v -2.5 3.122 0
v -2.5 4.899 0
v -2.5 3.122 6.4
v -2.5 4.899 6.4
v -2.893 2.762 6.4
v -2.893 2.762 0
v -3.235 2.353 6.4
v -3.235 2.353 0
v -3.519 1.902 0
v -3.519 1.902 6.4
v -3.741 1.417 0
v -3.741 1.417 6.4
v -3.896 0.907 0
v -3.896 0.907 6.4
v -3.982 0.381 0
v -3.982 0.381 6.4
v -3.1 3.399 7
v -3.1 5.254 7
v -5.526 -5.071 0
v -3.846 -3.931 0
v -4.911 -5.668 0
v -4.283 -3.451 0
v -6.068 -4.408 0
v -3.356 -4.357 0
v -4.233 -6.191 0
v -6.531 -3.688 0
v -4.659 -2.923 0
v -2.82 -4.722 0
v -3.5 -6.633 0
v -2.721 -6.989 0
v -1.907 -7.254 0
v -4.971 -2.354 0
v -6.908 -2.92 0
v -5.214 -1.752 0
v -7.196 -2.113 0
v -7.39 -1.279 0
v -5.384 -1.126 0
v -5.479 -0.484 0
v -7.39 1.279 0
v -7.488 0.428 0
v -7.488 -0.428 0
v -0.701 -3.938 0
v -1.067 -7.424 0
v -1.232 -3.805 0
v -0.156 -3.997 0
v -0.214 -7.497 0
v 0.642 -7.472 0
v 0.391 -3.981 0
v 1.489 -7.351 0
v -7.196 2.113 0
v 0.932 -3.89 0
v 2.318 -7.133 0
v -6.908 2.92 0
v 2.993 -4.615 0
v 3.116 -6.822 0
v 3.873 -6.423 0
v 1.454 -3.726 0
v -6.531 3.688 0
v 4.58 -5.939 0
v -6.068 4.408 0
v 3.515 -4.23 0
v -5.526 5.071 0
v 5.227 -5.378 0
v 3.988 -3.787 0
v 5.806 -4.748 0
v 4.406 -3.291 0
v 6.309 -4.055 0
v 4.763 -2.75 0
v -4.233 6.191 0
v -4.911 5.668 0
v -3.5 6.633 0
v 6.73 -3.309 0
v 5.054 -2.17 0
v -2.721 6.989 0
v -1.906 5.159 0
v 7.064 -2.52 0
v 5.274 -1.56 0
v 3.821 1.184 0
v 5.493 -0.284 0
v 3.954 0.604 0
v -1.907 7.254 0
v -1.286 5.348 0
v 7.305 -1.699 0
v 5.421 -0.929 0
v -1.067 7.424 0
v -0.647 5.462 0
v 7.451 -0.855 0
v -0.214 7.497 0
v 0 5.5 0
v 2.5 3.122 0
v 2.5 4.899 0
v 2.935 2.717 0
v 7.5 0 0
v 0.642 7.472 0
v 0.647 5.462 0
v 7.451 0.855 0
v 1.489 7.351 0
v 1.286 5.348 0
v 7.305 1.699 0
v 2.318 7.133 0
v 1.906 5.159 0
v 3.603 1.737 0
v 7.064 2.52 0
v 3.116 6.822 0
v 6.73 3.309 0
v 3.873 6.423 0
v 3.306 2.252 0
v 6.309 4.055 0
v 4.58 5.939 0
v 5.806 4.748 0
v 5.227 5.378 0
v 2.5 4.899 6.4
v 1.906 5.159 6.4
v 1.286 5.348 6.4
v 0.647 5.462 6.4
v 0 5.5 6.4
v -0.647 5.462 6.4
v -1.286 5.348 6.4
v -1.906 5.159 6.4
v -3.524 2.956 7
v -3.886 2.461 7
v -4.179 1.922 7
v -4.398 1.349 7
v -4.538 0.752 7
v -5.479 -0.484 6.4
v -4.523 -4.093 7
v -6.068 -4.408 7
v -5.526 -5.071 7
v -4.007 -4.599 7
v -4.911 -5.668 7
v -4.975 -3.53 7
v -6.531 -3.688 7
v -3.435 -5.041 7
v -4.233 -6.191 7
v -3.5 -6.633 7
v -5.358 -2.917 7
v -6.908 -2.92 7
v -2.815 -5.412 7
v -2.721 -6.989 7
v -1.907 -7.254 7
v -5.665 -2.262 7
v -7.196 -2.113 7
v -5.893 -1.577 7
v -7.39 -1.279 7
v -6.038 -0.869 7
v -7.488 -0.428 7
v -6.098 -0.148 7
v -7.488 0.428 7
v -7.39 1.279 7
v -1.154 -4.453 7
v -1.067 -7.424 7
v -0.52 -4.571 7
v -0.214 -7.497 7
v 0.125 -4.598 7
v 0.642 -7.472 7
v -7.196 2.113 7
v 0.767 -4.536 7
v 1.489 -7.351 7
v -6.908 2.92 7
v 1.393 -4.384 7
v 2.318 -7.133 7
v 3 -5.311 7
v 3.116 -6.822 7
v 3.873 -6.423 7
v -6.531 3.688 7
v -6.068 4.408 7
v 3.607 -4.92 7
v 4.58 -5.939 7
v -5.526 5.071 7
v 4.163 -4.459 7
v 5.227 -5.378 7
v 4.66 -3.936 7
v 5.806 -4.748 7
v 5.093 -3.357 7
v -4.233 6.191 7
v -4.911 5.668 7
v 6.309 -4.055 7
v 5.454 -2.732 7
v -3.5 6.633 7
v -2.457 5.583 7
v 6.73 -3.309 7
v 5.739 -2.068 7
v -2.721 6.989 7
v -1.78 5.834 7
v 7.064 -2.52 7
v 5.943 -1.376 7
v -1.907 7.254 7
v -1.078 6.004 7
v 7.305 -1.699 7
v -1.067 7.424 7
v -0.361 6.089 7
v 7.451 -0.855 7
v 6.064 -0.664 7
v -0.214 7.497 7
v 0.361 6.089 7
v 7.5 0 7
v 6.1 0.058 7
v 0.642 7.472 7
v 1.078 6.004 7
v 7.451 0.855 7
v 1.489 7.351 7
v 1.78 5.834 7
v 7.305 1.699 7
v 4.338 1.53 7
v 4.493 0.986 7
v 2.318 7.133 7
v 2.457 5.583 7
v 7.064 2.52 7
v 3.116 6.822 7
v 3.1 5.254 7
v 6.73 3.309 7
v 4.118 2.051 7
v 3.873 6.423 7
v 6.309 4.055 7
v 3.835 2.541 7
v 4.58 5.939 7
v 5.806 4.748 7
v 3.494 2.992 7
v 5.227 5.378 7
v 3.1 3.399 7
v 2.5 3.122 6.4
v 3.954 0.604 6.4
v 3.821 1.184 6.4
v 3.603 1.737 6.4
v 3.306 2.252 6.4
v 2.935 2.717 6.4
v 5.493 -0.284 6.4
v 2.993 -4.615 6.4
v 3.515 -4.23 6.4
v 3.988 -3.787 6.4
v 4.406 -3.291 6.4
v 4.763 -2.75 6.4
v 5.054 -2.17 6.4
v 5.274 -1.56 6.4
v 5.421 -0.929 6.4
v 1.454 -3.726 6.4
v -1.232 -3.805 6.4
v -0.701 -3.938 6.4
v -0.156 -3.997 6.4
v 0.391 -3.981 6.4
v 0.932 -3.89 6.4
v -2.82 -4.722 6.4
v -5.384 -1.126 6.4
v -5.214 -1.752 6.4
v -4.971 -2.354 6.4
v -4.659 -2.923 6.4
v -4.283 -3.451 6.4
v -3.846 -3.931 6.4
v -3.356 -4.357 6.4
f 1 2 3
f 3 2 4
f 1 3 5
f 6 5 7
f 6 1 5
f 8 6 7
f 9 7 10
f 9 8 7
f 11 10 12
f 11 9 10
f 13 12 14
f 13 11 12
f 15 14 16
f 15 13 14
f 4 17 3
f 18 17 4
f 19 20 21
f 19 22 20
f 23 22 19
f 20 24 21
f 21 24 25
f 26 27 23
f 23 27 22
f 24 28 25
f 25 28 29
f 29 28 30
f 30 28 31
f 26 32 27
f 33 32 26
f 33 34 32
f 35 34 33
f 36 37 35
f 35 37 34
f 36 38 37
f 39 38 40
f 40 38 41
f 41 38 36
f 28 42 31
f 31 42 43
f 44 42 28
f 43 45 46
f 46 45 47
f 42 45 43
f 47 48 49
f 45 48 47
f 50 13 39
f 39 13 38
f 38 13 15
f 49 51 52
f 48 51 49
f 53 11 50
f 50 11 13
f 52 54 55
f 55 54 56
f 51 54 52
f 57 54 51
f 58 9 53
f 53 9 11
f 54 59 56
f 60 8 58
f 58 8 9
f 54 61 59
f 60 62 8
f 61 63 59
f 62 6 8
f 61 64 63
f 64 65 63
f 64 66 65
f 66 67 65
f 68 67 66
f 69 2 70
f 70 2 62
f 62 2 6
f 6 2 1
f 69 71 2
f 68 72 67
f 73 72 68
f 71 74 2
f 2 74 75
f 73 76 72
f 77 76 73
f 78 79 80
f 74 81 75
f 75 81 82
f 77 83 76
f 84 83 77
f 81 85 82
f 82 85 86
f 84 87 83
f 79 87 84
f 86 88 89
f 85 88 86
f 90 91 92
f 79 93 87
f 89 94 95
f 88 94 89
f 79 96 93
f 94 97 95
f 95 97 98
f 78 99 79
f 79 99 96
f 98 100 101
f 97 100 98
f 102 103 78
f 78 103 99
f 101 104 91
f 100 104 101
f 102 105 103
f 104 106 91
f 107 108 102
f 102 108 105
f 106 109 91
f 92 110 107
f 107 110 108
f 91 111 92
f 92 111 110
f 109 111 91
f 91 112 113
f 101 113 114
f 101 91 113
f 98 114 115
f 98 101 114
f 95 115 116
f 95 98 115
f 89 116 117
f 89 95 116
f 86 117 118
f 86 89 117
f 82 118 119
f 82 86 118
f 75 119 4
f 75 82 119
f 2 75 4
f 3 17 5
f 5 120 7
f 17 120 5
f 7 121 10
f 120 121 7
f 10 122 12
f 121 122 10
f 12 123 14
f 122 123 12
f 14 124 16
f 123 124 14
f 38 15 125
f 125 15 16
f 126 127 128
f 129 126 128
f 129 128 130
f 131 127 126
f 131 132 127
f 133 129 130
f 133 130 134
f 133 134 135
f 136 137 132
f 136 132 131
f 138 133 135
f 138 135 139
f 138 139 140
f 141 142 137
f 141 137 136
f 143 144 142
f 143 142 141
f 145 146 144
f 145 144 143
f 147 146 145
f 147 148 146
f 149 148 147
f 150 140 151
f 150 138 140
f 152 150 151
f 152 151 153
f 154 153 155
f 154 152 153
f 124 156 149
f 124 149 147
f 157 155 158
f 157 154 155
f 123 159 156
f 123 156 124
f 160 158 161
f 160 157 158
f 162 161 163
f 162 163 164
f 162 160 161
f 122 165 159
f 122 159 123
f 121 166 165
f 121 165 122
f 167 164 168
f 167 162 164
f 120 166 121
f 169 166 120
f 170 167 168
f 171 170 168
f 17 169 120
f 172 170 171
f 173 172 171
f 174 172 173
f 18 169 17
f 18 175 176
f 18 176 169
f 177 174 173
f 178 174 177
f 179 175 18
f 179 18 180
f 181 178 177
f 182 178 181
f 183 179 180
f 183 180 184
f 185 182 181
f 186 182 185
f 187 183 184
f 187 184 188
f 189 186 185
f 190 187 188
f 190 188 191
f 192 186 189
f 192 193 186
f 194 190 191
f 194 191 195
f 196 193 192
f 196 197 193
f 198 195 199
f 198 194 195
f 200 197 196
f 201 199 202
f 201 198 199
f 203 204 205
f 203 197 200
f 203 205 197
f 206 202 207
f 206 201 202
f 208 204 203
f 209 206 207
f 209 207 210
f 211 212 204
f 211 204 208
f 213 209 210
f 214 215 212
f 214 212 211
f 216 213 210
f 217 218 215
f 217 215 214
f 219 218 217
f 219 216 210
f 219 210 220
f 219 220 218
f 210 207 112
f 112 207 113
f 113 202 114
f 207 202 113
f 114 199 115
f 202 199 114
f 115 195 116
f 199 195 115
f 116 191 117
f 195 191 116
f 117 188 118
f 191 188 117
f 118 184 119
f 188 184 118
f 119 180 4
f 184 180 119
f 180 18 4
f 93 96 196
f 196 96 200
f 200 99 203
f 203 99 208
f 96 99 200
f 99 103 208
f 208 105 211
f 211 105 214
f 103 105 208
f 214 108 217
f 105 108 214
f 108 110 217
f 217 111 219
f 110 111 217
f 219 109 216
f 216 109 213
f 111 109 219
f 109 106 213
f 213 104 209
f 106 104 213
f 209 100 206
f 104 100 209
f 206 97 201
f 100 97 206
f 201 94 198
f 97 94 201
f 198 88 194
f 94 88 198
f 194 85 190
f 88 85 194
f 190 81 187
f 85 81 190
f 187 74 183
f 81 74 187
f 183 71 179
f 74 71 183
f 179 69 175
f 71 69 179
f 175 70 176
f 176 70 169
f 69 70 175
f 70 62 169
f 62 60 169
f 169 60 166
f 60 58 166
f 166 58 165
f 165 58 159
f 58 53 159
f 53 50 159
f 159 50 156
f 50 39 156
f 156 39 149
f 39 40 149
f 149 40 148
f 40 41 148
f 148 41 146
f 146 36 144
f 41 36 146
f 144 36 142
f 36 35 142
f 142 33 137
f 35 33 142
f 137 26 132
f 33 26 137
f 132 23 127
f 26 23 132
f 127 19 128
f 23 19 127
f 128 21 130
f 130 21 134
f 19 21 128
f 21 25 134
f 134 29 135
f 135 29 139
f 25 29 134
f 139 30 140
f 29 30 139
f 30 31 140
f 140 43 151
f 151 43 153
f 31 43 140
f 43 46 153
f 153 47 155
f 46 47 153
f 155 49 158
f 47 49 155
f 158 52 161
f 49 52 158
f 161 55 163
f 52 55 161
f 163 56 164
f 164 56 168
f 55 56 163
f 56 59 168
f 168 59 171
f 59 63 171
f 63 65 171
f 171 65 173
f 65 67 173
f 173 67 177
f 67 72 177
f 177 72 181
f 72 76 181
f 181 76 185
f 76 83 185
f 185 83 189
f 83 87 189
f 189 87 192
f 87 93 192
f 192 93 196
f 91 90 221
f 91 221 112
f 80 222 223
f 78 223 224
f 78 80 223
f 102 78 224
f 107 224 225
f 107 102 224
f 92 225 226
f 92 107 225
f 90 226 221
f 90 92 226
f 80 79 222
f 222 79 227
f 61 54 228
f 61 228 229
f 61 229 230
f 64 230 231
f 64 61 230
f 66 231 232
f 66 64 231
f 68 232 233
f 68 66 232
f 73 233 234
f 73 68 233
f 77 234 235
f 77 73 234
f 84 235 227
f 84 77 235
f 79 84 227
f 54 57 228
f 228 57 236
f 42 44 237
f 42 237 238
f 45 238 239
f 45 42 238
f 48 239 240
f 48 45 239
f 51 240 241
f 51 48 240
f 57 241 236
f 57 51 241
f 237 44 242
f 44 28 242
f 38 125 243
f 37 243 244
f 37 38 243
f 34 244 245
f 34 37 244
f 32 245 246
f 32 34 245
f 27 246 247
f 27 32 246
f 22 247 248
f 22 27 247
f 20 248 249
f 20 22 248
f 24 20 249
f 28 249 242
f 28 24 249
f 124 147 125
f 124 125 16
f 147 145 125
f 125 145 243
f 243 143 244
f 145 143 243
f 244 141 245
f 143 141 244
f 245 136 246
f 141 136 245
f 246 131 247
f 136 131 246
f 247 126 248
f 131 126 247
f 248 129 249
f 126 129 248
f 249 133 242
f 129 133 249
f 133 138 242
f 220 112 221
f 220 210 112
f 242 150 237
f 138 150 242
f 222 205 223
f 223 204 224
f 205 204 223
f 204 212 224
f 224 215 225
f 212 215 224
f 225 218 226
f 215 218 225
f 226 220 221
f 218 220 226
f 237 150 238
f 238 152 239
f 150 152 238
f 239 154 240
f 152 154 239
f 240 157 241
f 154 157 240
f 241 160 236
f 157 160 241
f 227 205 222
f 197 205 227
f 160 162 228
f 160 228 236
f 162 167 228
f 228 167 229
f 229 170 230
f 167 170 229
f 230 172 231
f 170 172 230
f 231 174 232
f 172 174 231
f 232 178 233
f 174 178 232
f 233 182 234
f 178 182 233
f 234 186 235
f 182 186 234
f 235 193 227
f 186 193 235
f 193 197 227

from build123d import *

# Parameters (mm, degrees)
SKETCH_R     = 7.5
PAD_DEPTH    = 7
CHAMFER_SIZE = 0.6


with BuildPart() as part:
    # Sketch → Pad (new body)
    with BuildSketch(Plane.XY):
        Circle(SKETCH_R)
        with BuildLine():
            ThreePointArc((-2.5, 3.122499), (-3.518971, 1.901799), (-3.981855, 0.380567))
            Line((-5.478695, -0.483634), (-3.981855, 0.380567))
            ThreePointArc((-5.478695, -0.483634), (-4.659167, -2.922699), (-2.81991, -4.722087))
            Line((-1.232265, -3.80546), (-2.81991, -4.722087))
            ThreePointArc((-1.232265, -3.80546), (0.117848, -3.998264), (1.454262, -3.726275))
            Line((2.992718, -4.614503), (1.454262, -3.726275))
            ThreePointArc((2.992718, -4.614503), (4.763149, -2.749985), (5.492638, -0.284484))
            Line((3.954108, 0.604177), (5.492638, -0.284484))
            ThreePointArc((3.954108, 0.604177), (3.46401, 2.000159), (2.5, 3.122499))
            Line((2.5, 3.122499), (2.5, 4.898979))
            ThreePointArc((2.5, 4.898979), (0, 5.5), (-2.5, 4.898979))
            Line((-2.5, 3.122499), (-2.5, 4.898979))
        make_face(mode=Mode.SUBTRACT)
    extrude(amount=PAD_DEPTH)

    # Chamfer
    chamfer_edges = [part.edges().sort_by_distance(p)[0] for p in [
        (-3.518971, 1.901799, 7),
        (-4.730275, -0.051534, 7),
        (-4.659167, -2.922699, 7),
        (-2.026088, -4.263773, 7),
        (0.117848, -3.998264, 7),
        (2.22349, -4.170389, 7),
        (4.763149, -2.749985, 7),
        (4.723373, 0.159847, 7),
        (3.46401, 2.000159, 7),
        (2.5, 4.010739, 7),
        (0, 5.5, 7),
        (-2.5, 4.010739, 7),
    ]]
    chamfer(chamfer_edges, length=CHAMFER_SIZE)


solid = part.part
